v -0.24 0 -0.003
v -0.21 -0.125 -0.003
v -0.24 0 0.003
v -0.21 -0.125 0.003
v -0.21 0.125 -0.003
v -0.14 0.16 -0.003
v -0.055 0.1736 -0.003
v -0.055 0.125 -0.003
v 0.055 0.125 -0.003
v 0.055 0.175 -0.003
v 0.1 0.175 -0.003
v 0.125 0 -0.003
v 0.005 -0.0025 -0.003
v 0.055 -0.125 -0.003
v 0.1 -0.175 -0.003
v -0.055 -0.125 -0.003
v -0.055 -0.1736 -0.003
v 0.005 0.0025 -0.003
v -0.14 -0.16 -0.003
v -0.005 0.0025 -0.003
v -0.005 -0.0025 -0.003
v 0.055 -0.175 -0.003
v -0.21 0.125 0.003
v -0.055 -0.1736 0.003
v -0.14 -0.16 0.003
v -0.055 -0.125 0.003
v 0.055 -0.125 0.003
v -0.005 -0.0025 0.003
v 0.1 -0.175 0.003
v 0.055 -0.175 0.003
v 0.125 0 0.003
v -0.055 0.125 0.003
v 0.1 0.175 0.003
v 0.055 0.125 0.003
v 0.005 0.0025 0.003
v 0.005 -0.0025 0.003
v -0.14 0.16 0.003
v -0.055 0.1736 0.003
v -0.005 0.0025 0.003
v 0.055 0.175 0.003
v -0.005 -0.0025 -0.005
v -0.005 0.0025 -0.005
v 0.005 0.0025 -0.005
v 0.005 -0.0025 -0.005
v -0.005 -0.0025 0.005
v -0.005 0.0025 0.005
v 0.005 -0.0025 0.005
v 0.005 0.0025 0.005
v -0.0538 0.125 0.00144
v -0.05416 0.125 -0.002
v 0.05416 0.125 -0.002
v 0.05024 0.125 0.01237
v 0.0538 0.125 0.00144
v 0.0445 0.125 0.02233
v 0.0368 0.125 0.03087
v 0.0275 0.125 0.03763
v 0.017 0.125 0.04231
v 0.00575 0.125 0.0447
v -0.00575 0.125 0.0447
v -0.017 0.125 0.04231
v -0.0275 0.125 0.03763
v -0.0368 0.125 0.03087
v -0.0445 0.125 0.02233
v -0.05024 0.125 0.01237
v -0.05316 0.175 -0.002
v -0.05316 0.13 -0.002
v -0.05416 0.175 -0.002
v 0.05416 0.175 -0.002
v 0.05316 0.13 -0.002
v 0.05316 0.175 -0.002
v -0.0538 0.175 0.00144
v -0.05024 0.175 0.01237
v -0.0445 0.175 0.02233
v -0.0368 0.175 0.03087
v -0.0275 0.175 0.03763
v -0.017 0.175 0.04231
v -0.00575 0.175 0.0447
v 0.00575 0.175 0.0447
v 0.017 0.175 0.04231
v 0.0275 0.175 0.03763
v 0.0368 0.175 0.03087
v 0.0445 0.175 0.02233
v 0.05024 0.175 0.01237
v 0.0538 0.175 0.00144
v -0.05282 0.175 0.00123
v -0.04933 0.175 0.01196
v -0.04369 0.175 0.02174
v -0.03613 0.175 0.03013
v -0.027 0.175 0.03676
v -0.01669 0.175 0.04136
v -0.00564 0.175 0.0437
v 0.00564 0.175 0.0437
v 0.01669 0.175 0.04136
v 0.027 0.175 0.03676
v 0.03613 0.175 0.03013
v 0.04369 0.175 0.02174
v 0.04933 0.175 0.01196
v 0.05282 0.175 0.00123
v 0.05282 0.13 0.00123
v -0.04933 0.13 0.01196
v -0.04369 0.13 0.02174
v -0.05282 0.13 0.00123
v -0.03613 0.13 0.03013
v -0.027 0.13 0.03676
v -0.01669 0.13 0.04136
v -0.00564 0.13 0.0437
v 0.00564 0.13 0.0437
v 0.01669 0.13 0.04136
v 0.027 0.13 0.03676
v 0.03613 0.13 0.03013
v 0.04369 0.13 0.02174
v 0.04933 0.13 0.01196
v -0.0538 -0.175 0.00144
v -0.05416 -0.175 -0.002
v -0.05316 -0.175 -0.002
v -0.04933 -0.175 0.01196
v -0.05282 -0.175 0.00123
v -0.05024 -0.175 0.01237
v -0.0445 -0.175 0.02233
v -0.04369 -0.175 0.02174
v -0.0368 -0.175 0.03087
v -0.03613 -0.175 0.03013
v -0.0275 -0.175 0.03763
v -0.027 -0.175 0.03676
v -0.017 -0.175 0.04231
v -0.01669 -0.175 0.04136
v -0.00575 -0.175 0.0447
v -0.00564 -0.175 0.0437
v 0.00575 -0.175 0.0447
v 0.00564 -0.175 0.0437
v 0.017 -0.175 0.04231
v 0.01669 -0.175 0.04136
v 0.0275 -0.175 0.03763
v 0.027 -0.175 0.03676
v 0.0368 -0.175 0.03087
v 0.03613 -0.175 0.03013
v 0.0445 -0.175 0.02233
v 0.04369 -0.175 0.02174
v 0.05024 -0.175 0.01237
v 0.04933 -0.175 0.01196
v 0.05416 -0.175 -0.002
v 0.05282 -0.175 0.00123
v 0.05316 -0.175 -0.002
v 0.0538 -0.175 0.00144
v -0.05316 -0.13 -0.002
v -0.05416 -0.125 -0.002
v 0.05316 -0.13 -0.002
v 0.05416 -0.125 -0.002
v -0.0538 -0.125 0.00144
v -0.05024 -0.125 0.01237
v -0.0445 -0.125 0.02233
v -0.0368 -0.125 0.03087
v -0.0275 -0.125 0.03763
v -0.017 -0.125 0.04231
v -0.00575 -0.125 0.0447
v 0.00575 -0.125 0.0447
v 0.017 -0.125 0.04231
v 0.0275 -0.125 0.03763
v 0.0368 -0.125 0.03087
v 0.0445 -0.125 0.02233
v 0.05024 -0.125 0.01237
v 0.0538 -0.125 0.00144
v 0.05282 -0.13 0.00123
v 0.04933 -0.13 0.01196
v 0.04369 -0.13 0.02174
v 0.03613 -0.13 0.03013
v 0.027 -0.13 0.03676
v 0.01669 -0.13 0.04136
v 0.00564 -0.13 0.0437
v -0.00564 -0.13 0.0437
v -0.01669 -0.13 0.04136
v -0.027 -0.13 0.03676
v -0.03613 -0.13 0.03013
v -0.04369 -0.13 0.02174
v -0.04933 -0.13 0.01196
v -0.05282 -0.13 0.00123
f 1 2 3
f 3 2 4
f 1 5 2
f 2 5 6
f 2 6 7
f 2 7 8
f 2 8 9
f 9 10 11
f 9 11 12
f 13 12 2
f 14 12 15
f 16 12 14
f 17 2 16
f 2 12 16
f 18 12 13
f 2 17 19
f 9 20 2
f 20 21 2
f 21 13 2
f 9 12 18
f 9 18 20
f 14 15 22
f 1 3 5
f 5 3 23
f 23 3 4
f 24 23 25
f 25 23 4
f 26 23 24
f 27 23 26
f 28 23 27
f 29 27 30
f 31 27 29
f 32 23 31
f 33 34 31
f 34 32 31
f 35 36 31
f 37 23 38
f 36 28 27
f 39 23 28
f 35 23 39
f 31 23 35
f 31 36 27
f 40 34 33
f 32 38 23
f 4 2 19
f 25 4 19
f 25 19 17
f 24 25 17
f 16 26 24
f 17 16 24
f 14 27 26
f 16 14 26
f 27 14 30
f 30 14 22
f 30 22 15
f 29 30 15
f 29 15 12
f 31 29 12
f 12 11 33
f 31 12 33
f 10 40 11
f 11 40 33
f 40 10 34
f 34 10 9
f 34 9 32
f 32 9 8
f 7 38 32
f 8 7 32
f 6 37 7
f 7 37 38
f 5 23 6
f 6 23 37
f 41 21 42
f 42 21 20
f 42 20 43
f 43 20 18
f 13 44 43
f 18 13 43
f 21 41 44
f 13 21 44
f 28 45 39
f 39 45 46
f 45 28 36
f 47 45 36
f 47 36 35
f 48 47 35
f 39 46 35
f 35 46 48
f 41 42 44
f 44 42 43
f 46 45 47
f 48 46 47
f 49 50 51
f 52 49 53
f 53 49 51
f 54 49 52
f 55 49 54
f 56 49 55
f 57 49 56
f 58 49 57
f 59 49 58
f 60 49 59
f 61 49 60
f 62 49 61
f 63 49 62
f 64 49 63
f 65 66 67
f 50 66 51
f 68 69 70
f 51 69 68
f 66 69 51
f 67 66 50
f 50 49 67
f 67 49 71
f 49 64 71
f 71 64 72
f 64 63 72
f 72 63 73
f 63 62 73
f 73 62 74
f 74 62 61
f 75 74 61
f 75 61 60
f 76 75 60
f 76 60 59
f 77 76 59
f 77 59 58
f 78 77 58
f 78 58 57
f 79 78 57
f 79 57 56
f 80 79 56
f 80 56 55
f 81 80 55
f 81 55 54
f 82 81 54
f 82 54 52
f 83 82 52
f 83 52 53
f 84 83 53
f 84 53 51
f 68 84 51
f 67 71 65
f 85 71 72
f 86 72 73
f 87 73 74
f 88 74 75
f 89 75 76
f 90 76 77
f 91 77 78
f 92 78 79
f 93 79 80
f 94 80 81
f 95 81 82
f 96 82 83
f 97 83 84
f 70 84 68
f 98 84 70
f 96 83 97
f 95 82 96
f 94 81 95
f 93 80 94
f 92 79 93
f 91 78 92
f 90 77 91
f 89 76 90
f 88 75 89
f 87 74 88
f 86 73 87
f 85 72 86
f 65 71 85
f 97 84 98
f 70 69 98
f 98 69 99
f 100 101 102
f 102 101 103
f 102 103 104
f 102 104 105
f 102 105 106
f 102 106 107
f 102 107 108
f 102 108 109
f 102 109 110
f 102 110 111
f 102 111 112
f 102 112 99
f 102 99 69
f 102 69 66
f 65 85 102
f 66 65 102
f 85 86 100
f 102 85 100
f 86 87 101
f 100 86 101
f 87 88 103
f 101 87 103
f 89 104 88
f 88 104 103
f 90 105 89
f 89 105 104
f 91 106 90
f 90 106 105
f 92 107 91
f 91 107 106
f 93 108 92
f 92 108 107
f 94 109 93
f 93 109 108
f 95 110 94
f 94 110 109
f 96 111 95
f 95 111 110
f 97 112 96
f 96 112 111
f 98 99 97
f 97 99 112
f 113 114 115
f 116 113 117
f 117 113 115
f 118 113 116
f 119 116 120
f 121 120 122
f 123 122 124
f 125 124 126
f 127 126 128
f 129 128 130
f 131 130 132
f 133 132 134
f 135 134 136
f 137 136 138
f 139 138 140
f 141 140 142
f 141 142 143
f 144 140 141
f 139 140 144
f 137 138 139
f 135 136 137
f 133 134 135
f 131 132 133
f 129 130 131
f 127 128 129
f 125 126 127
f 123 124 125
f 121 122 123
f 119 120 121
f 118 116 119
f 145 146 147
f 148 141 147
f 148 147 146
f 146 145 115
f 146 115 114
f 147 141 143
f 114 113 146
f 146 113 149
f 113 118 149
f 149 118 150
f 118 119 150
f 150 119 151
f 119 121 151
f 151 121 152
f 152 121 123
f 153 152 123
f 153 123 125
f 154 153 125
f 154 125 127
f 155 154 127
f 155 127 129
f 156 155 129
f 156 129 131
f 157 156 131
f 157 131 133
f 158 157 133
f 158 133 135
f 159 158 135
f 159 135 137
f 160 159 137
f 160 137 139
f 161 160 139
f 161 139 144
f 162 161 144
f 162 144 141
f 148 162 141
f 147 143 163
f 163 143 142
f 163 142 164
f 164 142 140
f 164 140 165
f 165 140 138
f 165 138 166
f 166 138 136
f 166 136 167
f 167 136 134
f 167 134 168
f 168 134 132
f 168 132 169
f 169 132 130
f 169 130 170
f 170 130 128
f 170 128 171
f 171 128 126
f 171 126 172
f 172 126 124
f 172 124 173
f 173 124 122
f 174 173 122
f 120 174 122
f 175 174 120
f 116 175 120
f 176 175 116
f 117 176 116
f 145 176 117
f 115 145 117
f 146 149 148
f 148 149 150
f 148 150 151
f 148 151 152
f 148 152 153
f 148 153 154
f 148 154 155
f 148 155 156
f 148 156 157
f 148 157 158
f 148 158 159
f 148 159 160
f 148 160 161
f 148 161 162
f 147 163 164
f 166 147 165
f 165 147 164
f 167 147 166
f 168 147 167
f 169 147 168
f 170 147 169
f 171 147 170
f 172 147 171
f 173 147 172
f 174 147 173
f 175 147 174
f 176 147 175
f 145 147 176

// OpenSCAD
//Base 35x37cm

difference() {
linear_extrude(height = 0.006, center = true, convexity = 10, twist = 0, slices = 2, scale = 1.0)
	polygon(points=[ [0.125,0],
	[0.10,-0.175], [0.0,-0.175], [-0.04,-0.176], [-0.14,-0.160], [-0.21,-0.125],
[-0.24,0.0], 
	[-0.21,0.125], [-0.14,0.160], [-0.04, 0.176], [0.0,0.175], [0.10,0.175] ]);

translate([0,0.125+0.11/2,0]) {
	cube(size=0.11, center=true);
}
translate([0,-(0.125+0.11/2),0]) {
	cube(size=0.11, center=true);
}
} //end difference

//mudgear left
translate([0, 0.15,-0.01])
rotate([90,0,0]) {
	difference() {
		cylinder(h=0.05, r=0.11/2, center=true, $fn=30);
		translate([0,0,-0.005])
			cylinder(h=0.05, r=0.11/2-0.001, center=true, $fn=30);
		translate([0,-0.047,-0.029])
			cube(0.11, center=true);
	}
}

//mudgear right
translate([0, -0.15,-0.01])
rotate([-90,180,0]) {
	difference() {
		cylinder(h=0.05, r=0.11/2, center=true, $fn=30);
		translate([0,0,-0.005])
			cylinder(h=0.05, r=0.11/2-0.001, center=true, $fn=30);
		translate([0,-0.047,-0.029])
			cube(0.11, center=true);
	}
}

//center of rotation
cube(size=[0.01, 0.005,0.01], center=true);
%cube([1,0.01,0.01], center=true);
